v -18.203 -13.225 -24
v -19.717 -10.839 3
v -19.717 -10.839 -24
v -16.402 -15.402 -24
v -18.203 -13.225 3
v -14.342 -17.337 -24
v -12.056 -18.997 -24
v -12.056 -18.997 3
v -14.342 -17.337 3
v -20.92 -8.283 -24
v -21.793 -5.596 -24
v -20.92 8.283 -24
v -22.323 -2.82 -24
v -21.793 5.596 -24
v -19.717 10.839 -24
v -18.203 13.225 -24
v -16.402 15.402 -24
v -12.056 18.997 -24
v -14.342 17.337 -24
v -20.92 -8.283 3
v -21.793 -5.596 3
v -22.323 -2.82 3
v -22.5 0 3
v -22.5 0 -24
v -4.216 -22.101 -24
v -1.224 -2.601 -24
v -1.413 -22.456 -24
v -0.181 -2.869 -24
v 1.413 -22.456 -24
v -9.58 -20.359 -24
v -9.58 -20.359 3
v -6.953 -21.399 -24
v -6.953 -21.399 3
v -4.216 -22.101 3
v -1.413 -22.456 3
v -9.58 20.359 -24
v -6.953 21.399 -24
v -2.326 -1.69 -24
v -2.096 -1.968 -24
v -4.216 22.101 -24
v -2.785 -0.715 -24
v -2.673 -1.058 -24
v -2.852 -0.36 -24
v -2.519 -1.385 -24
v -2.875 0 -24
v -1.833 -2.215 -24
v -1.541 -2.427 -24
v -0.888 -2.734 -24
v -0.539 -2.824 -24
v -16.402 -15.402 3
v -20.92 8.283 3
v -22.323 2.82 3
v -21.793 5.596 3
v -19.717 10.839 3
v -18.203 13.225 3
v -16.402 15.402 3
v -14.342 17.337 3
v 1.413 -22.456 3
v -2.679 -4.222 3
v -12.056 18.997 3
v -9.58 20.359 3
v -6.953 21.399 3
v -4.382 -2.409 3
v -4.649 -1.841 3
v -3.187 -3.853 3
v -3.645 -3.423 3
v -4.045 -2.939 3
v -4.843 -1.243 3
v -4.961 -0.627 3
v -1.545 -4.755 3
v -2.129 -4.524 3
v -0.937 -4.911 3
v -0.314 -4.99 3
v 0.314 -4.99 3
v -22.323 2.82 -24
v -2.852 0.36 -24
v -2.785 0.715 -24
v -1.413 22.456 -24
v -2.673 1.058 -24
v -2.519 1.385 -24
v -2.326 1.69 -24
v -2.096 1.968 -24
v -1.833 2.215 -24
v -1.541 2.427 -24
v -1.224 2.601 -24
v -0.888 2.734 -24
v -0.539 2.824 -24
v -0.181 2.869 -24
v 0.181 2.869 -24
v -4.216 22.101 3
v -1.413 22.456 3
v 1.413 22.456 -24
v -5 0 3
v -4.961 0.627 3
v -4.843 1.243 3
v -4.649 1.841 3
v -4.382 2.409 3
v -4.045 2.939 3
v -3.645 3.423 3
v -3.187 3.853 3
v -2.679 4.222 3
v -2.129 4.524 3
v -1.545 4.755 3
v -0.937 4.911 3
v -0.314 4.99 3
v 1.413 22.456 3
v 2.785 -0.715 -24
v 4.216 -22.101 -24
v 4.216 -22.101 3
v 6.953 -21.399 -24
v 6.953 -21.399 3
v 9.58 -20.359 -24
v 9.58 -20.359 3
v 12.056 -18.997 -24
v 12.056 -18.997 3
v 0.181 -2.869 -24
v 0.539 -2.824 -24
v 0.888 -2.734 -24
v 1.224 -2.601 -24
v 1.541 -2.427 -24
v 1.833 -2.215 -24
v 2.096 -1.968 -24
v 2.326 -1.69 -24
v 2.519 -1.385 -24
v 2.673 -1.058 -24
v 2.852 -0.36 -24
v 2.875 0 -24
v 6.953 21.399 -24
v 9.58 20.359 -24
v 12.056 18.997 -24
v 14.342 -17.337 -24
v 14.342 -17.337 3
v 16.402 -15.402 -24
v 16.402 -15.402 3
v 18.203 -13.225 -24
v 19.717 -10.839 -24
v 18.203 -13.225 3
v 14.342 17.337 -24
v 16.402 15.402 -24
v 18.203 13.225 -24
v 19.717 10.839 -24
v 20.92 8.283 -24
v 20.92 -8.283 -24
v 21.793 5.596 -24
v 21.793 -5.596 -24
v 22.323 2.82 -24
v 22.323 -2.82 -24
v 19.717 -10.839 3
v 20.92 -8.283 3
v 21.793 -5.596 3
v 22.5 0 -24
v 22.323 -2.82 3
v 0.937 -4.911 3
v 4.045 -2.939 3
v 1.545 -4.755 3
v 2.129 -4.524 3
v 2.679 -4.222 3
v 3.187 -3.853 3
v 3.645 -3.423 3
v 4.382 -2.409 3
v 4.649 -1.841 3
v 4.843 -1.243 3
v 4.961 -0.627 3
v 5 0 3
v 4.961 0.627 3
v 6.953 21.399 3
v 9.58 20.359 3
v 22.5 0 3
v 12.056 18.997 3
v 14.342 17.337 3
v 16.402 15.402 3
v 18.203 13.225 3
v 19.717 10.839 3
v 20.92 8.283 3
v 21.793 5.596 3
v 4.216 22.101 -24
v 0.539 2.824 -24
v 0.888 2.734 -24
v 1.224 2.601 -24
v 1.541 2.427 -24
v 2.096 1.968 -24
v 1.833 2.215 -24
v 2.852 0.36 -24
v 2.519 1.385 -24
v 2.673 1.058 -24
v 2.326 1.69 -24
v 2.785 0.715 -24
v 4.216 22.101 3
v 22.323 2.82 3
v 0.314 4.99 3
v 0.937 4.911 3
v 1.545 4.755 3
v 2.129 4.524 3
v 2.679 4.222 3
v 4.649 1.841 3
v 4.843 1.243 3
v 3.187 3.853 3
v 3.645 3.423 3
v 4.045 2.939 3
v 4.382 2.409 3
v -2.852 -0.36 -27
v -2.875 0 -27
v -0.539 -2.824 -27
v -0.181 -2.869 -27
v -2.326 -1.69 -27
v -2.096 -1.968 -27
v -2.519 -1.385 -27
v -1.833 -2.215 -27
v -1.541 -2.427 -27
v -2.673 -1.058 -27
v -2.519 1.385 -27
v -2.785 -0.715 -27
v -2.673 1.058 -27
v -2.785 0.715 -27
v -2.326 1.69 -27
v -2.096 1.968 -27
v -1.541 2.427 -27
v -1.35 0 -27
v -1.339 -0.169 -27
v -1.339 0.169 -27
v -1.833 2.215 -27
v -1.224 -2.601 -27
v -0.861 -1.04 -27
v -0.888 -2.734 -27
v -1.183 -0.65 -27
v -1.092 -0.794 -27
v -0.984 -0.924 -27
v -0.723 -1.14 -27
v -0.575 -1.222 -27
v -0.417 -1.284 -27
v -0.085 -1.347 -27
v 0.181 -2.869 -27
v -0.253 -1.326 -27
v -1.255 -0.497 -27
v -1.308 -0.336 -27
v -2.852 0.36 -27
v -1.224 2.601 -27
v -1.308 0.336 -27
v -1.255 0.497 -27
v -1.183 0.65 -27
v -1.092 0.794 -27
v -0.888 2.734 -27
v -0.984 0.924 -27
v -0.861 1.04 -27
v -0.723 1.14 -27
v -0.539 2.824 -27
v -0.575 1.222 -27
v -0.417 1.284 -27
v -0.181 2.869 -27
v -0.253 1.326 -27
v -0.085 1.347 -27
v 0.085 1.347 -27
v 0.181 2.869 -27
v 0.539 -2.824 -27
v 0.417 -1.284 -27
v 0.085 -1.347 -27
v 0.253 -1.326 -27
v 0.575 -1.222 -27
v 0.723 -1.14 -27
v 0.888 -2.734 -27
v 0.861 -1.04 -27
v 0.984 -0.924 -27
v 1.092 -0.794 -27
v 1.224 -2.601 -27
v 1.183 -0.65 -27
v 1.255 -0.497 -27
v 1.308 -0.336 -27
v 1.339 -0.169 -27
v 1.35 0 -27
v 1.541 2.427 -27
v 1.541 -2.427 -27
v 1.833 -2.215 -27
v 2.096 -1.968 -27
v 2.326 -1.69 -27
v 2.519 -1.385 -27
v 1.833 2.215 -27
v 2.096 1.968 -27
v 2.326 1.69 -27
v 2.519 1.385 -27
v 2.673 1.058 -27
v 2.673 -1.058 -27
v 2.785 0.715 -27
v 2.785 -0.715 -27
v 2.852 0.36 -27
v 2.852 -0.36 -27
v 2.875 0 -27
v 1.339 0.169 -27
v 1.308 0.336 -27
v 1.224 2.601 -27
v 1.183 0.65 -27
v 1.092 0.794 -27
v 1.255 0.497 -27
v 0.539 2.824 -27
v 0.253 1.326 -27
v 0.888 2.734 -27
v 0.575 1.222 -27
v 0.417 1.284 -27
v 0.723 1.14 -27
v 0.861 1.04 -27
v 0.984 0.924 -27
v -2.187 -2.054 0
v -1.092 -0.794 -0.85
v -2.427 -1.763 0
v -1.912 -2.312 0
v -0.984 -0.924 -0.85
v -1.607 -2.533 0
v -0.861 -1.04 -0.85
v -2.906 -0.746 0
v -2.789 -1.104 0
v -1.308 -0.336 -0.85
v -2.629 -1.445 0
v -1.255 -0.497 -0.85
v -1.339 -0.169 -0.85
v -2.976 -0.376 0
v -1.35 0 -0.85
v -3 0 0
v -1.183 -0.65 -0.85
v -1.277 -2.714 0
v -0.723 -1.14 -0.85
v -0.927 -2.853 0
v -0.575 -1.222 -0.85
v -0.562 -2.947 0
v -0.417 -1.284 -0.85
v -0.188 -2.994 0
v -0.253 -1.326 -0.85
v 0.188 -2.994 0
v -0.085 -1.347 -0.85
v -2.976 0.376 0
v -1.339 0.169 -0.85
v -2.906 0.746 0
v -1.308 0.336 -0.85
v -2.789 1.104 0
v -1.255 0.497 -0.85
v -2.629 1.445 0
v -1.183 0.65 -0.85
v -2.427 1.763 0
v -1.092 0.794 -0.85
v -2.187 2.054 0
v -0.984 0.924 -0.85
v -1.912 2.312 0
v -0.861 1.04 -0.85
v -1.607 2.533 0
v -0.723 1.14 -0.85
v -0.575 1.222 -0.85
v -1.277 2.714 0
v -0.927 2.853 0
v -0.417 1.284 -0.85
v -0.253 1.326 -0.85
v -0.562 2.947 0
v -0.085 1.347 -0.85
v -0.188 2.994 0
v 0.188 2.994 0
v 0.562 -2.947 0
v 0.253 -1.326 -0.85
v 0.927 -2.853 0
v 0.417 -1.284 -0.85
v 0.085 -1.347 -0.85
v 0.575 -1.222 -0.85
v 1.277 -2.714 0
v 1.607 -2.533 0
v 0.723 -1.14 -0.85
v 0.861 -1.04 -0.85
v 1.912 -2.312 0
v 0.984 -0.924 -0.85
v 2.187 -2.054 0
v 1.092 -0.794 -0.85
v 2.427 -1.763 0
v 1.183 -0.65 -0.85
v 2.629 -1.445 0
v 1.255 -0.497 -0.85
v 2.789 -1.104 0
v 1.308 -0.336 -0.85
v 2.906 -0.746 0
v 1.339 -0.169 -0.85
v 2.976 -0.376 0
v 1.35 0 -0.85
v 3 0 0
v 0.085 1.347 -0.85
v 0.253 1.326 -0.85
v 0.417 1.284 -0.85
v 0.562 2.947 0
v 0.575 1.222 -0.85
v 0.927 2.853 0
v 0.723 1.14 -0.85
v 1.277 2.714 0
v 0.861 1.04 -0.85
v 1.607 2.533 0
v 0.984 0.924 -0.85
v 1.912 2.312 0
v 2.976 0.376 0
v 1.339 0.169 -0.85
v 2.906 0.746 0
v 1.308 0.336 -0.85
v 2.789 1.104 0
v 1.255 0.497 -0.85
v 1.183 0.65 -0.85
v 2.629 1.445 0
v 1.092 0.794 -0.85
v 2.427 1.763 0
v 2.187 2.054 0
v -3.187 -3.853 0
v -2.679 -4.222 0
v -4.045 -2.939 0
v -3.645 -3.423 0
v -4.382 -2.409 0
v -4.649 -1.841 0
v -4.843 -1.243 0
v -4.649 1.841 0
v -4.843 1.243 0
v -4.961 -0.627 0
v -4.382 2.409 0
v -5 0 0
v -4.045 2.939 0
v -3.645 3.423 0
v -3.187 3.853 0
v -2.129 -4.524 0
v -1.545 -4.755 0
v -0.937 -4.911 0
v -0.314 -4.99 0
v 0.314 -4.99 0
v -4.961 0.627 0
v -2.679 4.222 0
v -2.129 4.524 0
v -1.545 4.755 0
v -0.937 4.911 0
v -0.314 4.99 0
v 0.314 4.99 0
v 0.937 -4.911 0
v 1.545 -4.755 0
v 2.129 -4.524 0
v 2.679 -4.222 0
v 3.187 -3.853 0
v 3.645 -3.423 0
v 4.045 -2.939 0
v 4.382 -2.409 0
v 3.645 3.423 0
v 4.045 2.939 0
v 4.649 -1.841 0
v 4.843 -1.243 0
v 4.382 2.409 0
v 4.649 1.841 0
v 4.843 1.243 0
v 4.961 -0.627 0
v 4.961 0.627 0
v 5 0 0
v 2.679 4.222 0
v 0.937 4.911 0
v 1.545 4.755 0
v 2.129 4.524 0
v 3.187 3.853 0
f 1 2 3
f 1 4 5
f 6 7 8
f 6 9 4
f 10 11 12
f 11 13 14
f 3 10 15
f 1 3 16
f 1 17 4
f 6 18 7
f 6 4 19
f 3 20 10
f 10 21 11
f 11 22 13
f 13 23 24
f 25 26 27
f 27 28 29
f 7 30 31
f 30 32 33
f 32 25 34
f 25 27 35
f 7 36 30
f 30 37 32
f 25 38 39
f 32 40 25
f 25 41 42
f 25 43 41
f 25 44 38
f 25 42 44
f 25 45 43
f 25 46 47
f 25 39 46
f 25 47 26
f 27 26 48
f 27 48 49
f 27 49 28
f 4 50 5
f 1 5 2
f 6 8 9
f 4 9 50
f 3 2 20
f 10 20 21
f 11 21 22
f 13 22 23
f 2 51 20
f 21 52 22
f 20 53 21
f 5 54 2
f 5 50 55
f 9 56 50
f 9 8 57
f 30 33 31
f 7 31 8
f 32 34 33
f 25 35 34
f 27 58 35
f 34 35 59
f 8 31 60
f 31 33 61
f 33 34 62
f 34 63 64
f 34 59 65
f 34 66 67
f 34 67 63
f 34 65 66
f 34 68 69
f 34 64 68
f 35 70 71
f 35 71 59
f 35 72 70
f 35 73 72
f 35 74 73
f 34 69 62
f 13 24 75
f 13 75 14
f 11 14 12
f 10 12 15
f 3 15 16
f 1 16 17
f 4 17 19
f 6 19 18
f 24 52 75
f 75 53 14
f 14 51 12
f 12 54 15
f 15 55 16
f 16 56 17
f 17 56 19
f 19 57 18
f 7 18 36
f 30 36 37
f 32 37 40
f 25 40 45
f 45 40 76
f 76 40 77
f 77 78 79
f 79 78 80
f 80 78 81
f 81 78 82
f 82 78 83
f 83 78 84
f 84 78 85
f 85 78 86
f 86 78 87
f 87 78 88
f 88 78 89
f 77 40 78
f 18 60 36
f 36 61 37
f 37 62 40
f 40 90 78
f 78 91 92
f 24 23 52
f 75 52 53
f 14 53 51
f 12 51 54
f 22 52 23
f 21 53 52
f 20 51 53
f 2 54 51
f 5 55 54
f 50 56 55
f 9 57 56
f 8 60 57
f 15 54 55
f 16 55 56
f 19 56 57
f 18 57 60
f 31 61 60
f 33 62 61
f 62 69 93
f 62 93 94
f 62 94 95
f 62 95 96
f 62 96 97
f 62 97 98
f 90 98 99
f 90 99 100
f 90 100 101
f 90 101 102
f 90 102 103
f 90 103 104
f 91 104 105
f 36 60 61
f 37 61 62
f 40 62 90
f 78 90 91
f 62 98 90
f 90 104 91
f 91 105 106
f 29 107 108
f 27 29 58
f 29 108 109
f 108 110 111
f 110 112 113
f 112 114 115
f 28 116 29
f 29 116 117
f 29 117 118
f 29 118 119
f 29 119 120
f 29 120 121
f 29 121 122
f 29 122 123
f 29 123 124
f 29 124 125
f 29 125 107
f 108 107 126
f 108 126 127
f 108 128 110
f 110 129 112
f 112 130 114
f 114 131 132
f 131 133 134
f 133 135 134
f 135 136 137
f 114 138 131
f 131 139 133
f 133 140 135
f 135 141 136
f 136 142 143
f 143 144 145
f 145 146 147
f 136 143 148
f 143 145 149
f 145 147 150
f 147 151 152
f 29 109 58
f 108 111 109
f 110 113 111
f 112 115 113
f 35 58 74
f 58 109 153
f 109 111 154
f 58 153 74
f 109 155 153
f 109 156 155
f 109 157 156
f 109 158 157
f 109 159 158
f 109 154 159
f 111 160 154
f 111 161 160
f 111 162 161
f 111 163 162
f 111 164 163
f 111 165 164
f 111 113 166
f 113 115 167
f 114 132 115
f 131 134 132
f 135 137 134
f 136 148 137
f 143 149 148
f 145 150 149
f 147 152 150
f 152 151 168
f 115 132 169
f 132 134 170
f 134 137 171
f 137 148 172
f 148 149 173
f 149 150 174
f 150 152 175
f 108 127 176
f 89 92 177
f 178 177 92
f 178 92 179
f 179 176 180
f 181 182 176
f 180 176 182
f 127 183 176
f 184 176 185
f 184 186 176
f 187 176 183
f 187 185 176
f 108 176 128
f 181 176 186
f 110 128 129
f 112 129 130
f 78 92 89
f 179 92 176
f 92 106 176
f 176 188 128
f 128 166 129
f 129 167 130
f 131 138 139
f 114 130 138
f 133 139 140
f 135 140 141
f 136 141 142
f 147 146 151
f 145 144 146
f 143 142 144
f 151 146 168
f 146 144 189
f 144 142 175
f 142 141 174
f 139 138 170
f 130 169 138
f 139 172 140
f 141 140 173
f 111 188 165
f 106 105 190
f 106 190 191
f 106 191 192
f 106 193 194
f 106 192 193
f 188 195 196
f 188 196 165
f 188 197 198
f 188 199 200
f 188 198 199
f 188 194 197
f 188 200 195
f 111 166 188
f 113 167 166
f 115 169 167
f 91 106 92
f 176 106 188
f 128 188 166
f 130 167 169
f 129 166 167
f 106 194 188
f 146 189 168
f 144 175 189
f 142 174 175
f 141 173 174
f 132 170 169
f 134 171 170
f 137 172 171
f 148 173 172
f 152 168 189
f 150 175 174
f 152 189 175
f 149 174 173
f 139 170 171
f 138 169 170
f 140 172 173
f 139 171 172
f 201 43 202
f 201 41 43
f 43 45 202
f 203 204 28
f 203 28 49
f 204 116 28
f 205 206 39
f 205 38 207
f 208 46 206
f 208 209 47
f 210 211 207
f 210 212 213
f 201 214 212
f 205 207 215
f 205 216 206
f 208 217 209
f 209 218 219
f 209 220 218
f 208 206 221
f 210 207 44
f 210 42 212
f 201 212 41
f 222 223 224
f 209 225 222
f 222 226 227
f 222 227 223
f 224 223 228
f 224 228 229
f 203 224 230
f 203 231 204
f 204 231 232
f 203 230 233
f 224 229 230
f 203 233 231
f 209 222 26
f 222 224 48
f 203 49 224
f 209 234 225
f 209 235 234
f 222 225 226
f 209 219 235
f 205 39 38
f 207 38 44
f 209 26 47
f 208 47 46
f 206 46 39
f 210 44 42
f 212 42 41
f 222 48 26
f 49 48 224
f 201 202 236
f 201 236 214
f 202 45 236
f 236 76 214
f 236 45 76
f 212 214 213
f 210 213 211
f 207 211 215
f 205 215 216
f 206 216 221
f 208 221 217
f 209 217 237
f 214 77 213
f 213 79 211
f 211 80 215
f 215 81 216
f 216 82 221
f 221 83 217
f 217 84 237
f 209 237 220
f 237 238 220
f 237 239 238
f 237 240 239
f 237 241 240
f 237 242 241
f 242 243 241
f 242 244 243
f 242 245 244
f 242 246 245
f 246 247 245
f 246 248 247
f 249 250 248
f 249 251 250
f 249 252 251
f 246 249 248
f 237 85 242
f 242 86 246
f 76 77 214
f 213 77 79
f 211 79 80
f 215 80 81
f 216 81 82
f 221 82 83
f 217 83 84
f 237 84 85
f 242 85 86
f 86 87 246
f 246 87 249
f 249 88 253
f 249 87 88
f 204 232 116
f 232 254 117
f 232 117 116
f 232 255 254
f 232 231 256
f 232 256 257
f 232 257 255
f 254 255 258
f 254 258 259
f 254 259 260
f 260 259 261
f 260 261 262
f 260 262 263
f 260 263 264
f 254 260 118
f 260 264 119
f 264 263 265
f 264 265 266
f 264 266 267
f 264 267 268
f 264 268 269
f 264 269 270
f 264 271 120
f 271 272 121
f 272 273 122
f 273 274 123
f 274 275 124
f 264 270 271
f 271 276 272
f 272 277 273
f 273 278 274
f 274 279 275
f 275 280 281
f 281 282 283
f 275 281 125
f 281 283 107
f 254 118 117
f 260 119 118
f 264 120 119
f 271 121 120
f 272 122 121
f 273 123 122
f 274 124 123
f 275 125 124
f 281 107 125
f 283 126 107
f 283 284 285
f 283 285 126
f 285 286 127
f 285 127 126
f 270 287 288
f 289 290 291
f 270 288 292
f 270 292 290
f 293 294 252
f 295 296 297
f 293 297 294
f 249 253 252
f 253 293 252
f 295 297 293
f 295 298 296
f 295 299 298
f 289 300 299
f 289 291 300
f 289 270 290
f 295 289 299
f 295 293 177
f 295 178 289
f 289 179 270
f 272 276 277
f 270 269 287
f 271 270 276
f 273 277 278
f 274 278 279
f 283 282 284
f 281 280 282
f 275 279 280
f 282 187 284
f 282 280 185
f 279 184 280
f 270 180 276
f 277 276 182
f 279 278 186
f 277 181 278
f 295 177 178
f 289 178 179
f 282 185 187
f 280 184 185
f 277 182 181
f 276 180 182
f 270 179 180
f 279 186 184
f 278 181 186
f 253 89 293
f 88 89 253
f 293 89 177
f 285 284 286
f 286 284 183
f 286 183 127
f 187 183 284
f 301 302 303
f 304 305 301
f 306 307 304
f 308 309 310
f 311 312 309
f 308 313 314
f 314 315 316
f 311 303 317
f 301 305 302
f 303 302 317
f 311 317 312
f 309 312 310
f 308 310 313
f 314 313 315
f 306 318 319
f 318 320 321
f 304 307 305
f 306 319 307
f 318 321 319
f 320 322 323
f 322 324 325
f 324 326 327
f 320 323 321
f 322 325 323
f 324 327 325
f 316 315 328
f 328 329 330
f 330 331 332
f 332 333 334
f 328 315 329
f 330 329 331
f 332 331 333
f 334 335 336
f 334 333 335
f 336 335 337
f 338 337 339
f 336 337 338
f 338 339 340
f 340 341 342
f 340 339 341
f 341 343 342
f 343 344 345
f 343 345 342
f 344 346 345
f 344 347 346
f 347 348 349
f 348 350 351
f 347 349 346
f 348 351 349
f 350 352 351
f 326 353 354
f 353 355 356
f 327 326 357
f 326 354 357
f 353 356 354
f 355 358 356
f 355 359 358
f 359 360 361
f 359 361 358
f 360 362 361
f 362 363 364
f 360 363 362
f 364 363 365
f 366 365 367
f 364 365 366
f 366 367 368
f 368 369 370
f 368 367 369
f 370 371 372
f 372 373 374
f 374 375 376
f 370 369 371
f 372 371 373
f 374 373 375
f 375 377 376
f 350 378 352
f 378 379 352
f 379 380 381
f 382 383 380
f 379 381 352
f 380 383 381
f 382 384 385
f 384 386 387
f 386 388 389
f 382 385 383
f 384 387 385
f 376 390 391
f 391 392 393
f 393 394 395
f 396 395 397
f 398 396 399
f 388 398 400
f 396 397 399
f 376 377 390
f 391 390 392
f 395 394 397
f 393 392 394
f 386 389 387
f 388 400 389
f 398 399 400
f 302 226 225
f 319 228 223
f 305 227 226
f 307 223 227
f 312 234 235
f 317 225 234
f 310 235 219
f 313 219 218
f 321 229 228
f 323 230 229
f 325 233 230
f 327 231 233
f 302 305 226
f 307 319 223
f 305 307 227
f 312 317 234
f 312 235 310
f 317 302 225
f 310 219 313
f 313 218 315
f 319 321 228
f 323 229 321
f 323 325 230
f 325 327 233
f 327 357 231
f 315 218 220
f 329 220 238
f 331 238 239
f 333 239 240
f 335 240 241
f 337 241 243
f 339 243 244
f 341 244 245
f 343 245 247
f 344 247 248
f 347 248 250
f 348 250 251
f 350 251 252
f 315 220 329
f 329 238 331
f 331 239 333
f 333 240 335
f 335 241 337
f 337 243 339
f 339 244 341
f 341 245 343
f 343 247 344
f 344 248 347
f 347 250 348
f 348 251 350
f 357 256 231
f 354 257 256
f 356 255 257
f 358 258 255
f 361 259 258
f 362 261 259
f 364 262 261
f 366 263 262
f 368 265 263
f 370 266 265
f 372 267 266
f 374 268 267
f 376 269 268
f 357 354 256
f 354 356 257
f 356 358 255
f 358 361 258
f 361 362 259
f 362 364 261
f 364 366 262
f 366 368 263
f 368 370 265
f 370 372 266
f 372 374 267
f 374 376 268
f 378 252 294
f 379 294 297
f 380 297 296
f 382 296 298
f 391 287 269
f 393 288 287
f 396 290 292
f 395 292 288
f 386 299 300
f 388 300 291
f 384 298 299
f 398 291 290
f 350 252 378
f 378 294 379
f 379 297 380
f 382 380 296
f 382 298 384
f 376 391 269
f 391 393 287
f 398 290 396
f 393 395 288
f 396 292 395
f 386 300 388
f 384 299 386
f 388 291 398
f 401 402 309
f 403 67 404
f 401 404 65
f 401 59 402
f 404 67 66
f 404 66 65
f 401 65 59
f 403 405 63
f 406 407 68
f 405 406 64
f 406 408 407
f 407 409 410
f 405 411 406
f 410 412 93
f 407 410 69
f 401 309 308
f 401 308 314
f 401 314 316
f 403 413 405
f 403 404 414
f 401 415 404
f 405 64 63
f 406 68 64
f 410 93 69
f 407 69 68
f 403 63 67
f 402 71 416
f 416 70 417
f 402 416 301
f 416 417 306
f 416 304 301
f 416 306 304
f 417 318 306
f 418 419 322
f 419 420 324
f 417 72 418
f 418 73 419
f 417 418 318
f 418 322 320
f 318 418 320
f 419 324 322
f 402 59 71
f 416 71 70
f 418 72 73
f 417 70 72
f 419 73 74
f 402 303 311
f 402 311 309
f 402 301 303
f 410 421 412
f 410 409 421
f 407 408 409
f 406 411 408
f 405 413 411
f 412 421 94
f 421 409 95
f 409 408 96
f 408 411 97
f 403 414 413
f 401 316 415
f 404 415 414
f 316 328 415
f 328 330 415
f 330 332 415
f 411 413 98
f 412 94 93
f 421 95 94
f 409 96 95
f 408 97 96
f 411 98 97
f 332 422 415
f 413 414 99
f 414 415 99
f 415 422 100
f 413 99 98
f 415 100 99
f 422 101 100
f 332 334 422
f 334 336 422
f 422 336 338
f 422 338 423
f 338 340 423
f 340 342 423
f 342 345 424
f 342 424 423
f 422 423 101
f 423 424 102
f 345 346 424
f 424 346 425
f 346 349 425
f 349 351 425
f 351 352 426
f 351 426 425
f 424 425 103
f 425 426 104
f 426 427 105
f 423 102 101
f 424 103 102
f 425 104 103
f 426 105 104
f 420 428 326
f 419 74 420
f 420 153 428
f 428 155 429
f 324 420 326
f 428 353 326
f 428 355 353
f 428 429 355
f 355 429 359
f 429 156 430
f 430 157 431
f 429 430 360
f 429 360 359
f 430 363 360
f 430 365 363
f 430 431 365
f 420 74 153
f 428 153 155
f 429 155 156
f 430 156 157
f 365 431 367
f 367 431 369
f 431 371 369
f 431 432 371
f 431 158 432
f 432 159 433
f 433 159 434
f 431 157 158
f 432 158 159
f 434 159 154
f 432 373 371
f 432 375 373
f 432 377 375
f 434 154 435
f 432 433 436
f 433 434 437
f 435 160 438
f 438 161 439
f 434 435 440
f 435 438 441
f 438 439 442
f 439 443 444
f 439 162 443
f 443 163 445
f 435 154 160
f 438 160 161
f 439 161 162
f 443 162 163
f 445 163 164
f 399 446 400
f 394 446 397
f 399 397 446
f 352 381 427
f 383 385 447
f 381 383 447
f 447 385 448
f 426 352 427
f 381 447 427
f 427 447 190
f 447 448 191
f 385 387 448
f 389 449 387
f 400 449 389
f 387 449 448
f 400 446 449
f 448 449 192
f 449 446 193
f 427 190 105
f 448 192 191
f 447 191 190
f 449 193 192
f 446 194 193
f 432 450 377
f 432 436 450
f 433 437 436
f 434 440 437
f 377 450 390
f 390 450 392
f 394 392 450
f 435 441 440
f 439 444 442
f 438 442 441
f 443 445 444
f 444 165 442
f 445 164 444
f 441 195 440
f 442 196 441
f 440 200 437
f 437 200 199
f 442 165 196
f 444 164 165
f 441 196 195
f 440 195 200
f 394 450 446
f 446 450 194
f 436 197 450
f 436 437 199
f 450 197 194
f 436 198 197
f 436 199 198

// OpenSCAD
$fn = 50;

difference() {
	union() {
		translate(v = [0, 0, -24.0]) {
			cylinder(h = 27, r = 22.5);
		}
		#translate(v = [0, 0, -27.0]) {
			cylinder(h = 27, r = 2.875);
		}
	}
	union() {
		translate(v = [0, 0, 0]) {
			rotate(a = [0, 0, 0]) {
				difference() {
					union() {
						translate(v = [0, 0, -27.0]) {
							cylinder(h = 27, r = 1.0);
						}
						translate(v = [0, 0, -0.85]) {
							cylinder(h = 0.85, r1 = 1.35, r2 = 3.0);
						}
						translate(v = [0, 0, -27.0]) {
							cylinder(h = 27, r = 1.35);
						}
						translate(v = [0, 0, -27.0]) {
							cylinder(h = 27, r = 1.0);
						}
					}
					union();
				}
			}
		}
		#cylinder(h = 3, r = 5.0);
	}
}
